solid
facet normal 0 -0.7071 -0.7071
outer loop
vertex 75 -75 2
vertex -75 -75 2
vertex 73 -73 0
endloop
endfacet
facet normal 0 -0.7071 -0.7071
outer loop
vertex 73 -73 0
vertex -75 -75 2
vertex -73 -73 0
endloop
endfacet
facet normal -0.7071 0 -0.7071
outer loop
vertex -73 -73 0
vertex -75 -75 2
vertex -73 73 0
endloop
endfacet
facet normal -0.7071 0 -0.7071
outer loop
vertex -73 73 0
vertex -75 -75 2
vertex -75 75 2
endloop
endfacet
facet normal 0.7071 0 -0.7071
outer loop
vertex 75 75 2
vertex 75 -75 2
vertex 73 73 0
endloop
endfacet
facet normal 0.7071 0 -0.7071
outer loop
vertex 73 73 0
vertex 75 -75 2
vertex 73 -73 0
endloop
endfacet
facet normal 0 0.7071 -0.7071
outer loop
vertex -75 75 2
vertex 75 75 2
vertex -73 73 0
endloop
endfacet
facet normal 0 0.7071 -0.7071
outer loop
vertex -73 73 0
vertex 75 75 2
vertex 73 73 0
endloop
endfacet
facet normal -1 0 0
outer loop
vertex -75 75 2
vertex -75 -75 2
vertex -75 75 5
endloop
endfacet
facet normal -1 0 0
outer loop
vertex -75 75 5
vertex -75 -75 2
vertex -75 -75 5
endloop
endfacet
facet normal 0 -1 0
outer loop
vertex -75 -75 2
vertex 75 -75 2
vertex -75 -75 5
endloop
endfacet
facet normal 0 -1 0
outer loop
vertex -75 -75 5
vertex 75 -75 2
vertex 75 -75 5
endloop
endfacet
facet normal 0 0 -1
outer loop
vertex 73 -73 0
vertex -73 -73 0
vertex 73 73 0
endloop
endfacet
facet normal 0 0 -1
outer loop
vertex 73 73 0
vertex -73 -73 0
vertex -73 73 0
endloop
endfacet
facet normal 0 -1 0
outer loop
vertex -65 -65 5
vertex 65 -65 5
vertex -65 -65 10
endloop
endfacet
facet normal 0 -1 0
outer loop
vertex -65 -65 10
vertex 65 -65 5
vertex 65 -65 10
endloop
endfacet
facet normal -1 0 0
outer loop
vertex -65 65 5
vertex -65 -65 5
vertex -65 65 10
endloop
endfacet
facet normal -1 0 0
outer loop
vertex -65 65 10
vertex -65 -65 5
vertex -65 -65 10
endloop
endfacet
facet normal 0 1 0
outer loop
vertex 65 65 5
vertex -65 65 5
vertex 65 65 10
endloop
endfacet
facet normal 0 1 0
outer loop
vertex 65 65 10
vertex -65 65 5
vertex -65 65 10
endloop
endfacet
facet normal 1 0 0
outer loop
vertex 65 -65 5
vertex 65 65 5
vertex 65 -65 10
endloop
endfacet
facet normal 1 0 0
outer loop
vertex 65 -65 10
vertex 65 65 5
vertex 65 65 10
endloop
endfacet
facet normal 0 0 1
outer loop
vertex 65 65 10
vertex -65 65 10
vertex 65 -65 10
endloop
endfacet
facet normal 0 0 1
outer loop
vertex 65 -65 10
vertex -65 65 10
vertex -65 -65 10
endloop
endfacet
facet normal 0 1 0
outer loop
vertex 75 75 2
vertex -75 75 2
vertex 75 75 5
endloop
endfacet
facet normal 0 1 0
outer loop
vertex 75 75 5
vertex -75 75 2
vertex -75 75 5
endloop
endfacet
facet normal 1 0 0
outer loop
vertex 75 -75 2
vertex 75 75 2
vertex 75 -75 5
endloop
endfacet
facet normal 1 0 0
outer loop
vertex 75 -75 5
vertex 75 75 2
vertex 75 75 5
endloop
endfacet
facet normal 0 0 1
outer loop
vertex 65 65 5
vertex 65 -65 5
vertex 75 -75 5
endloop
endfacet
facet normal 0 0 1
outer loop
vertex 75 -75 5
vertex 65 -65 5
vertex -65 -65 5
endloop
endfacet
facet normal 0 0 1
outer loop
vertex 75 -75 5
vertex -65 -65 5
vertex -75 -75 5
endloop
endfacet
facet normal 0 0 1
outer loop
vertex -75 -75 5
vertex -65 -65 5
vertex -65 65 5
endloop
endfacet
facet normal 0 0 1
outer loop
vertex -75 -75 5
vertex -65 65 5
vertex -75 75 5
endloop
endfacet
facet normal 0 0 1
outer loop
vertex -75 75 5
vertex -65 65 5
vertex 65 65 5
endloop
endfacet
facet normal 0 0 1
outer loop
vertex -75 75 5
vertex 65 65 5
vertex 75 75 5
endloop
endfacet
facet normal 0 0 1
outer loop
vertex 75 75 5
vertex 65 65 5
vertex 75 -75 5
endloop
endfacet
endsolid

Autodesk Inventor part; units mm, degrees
ref_plane "YZ Plane" through (0, 0, 0) normal (1, 0, 0) x (0, 1, 0)
ref_plane "XZ Plane" through (0, 0, 0) normal (0, 1, 0) x (-1, 0, 0)
ref_plane "XY Plane" through (0, 0, 0) normal (0, 0, 1) x (1, 0, 0)
sketch "Sketch1" plane through (0, 0, 0) normal (0, 0, 1) x (1, 0, 0)
  line L0 (-75, 75) -> (75, 75)
  line L1 (75, 75) -> (75, -75)
  line L2 (75, -75) -> (-75, -75)
  line L3 (-75, -75) -> (-75, 75)
  line L4 (-75, 75) -> (75, -75) construction
  line L5 (75, 75) -> (-75, -75) construction
  point P0 (0, 0)
  dimension "d0" = 150
  dimension "d1" = 150
extrude "Extrusion1" add sketch "Sketch1" along normal blind 5
sketch "Sketch2" plane through (0, 0, 5) normal (0, 0, 1) x (1, 0, 0)
  line L0 (-65, -65) -> (65, -65)
  line L1 (65, -65) -> (65, 65)
  line L2 (65, 65) -> (-65, 65)
  line L3 (-65, 65) -> (-65, -65)
  line L4 (-65, -65) -> (65, 65) construction
  line L5 (65, -65) -> (-65, 65) construction
  point P0 (0, 0)
  dimension "d4" = 130
  dimension "d5" = 130
extrude "Extrusion2" add sketch "Sketch2" along normal blind 5
chamfer "Chamfer1" distance 2 angle 45 4 edges at (0, -75, 0) (-75, 0, 0) (75, 0, 0) (0, 75, 0)
properties part number "deksel"
